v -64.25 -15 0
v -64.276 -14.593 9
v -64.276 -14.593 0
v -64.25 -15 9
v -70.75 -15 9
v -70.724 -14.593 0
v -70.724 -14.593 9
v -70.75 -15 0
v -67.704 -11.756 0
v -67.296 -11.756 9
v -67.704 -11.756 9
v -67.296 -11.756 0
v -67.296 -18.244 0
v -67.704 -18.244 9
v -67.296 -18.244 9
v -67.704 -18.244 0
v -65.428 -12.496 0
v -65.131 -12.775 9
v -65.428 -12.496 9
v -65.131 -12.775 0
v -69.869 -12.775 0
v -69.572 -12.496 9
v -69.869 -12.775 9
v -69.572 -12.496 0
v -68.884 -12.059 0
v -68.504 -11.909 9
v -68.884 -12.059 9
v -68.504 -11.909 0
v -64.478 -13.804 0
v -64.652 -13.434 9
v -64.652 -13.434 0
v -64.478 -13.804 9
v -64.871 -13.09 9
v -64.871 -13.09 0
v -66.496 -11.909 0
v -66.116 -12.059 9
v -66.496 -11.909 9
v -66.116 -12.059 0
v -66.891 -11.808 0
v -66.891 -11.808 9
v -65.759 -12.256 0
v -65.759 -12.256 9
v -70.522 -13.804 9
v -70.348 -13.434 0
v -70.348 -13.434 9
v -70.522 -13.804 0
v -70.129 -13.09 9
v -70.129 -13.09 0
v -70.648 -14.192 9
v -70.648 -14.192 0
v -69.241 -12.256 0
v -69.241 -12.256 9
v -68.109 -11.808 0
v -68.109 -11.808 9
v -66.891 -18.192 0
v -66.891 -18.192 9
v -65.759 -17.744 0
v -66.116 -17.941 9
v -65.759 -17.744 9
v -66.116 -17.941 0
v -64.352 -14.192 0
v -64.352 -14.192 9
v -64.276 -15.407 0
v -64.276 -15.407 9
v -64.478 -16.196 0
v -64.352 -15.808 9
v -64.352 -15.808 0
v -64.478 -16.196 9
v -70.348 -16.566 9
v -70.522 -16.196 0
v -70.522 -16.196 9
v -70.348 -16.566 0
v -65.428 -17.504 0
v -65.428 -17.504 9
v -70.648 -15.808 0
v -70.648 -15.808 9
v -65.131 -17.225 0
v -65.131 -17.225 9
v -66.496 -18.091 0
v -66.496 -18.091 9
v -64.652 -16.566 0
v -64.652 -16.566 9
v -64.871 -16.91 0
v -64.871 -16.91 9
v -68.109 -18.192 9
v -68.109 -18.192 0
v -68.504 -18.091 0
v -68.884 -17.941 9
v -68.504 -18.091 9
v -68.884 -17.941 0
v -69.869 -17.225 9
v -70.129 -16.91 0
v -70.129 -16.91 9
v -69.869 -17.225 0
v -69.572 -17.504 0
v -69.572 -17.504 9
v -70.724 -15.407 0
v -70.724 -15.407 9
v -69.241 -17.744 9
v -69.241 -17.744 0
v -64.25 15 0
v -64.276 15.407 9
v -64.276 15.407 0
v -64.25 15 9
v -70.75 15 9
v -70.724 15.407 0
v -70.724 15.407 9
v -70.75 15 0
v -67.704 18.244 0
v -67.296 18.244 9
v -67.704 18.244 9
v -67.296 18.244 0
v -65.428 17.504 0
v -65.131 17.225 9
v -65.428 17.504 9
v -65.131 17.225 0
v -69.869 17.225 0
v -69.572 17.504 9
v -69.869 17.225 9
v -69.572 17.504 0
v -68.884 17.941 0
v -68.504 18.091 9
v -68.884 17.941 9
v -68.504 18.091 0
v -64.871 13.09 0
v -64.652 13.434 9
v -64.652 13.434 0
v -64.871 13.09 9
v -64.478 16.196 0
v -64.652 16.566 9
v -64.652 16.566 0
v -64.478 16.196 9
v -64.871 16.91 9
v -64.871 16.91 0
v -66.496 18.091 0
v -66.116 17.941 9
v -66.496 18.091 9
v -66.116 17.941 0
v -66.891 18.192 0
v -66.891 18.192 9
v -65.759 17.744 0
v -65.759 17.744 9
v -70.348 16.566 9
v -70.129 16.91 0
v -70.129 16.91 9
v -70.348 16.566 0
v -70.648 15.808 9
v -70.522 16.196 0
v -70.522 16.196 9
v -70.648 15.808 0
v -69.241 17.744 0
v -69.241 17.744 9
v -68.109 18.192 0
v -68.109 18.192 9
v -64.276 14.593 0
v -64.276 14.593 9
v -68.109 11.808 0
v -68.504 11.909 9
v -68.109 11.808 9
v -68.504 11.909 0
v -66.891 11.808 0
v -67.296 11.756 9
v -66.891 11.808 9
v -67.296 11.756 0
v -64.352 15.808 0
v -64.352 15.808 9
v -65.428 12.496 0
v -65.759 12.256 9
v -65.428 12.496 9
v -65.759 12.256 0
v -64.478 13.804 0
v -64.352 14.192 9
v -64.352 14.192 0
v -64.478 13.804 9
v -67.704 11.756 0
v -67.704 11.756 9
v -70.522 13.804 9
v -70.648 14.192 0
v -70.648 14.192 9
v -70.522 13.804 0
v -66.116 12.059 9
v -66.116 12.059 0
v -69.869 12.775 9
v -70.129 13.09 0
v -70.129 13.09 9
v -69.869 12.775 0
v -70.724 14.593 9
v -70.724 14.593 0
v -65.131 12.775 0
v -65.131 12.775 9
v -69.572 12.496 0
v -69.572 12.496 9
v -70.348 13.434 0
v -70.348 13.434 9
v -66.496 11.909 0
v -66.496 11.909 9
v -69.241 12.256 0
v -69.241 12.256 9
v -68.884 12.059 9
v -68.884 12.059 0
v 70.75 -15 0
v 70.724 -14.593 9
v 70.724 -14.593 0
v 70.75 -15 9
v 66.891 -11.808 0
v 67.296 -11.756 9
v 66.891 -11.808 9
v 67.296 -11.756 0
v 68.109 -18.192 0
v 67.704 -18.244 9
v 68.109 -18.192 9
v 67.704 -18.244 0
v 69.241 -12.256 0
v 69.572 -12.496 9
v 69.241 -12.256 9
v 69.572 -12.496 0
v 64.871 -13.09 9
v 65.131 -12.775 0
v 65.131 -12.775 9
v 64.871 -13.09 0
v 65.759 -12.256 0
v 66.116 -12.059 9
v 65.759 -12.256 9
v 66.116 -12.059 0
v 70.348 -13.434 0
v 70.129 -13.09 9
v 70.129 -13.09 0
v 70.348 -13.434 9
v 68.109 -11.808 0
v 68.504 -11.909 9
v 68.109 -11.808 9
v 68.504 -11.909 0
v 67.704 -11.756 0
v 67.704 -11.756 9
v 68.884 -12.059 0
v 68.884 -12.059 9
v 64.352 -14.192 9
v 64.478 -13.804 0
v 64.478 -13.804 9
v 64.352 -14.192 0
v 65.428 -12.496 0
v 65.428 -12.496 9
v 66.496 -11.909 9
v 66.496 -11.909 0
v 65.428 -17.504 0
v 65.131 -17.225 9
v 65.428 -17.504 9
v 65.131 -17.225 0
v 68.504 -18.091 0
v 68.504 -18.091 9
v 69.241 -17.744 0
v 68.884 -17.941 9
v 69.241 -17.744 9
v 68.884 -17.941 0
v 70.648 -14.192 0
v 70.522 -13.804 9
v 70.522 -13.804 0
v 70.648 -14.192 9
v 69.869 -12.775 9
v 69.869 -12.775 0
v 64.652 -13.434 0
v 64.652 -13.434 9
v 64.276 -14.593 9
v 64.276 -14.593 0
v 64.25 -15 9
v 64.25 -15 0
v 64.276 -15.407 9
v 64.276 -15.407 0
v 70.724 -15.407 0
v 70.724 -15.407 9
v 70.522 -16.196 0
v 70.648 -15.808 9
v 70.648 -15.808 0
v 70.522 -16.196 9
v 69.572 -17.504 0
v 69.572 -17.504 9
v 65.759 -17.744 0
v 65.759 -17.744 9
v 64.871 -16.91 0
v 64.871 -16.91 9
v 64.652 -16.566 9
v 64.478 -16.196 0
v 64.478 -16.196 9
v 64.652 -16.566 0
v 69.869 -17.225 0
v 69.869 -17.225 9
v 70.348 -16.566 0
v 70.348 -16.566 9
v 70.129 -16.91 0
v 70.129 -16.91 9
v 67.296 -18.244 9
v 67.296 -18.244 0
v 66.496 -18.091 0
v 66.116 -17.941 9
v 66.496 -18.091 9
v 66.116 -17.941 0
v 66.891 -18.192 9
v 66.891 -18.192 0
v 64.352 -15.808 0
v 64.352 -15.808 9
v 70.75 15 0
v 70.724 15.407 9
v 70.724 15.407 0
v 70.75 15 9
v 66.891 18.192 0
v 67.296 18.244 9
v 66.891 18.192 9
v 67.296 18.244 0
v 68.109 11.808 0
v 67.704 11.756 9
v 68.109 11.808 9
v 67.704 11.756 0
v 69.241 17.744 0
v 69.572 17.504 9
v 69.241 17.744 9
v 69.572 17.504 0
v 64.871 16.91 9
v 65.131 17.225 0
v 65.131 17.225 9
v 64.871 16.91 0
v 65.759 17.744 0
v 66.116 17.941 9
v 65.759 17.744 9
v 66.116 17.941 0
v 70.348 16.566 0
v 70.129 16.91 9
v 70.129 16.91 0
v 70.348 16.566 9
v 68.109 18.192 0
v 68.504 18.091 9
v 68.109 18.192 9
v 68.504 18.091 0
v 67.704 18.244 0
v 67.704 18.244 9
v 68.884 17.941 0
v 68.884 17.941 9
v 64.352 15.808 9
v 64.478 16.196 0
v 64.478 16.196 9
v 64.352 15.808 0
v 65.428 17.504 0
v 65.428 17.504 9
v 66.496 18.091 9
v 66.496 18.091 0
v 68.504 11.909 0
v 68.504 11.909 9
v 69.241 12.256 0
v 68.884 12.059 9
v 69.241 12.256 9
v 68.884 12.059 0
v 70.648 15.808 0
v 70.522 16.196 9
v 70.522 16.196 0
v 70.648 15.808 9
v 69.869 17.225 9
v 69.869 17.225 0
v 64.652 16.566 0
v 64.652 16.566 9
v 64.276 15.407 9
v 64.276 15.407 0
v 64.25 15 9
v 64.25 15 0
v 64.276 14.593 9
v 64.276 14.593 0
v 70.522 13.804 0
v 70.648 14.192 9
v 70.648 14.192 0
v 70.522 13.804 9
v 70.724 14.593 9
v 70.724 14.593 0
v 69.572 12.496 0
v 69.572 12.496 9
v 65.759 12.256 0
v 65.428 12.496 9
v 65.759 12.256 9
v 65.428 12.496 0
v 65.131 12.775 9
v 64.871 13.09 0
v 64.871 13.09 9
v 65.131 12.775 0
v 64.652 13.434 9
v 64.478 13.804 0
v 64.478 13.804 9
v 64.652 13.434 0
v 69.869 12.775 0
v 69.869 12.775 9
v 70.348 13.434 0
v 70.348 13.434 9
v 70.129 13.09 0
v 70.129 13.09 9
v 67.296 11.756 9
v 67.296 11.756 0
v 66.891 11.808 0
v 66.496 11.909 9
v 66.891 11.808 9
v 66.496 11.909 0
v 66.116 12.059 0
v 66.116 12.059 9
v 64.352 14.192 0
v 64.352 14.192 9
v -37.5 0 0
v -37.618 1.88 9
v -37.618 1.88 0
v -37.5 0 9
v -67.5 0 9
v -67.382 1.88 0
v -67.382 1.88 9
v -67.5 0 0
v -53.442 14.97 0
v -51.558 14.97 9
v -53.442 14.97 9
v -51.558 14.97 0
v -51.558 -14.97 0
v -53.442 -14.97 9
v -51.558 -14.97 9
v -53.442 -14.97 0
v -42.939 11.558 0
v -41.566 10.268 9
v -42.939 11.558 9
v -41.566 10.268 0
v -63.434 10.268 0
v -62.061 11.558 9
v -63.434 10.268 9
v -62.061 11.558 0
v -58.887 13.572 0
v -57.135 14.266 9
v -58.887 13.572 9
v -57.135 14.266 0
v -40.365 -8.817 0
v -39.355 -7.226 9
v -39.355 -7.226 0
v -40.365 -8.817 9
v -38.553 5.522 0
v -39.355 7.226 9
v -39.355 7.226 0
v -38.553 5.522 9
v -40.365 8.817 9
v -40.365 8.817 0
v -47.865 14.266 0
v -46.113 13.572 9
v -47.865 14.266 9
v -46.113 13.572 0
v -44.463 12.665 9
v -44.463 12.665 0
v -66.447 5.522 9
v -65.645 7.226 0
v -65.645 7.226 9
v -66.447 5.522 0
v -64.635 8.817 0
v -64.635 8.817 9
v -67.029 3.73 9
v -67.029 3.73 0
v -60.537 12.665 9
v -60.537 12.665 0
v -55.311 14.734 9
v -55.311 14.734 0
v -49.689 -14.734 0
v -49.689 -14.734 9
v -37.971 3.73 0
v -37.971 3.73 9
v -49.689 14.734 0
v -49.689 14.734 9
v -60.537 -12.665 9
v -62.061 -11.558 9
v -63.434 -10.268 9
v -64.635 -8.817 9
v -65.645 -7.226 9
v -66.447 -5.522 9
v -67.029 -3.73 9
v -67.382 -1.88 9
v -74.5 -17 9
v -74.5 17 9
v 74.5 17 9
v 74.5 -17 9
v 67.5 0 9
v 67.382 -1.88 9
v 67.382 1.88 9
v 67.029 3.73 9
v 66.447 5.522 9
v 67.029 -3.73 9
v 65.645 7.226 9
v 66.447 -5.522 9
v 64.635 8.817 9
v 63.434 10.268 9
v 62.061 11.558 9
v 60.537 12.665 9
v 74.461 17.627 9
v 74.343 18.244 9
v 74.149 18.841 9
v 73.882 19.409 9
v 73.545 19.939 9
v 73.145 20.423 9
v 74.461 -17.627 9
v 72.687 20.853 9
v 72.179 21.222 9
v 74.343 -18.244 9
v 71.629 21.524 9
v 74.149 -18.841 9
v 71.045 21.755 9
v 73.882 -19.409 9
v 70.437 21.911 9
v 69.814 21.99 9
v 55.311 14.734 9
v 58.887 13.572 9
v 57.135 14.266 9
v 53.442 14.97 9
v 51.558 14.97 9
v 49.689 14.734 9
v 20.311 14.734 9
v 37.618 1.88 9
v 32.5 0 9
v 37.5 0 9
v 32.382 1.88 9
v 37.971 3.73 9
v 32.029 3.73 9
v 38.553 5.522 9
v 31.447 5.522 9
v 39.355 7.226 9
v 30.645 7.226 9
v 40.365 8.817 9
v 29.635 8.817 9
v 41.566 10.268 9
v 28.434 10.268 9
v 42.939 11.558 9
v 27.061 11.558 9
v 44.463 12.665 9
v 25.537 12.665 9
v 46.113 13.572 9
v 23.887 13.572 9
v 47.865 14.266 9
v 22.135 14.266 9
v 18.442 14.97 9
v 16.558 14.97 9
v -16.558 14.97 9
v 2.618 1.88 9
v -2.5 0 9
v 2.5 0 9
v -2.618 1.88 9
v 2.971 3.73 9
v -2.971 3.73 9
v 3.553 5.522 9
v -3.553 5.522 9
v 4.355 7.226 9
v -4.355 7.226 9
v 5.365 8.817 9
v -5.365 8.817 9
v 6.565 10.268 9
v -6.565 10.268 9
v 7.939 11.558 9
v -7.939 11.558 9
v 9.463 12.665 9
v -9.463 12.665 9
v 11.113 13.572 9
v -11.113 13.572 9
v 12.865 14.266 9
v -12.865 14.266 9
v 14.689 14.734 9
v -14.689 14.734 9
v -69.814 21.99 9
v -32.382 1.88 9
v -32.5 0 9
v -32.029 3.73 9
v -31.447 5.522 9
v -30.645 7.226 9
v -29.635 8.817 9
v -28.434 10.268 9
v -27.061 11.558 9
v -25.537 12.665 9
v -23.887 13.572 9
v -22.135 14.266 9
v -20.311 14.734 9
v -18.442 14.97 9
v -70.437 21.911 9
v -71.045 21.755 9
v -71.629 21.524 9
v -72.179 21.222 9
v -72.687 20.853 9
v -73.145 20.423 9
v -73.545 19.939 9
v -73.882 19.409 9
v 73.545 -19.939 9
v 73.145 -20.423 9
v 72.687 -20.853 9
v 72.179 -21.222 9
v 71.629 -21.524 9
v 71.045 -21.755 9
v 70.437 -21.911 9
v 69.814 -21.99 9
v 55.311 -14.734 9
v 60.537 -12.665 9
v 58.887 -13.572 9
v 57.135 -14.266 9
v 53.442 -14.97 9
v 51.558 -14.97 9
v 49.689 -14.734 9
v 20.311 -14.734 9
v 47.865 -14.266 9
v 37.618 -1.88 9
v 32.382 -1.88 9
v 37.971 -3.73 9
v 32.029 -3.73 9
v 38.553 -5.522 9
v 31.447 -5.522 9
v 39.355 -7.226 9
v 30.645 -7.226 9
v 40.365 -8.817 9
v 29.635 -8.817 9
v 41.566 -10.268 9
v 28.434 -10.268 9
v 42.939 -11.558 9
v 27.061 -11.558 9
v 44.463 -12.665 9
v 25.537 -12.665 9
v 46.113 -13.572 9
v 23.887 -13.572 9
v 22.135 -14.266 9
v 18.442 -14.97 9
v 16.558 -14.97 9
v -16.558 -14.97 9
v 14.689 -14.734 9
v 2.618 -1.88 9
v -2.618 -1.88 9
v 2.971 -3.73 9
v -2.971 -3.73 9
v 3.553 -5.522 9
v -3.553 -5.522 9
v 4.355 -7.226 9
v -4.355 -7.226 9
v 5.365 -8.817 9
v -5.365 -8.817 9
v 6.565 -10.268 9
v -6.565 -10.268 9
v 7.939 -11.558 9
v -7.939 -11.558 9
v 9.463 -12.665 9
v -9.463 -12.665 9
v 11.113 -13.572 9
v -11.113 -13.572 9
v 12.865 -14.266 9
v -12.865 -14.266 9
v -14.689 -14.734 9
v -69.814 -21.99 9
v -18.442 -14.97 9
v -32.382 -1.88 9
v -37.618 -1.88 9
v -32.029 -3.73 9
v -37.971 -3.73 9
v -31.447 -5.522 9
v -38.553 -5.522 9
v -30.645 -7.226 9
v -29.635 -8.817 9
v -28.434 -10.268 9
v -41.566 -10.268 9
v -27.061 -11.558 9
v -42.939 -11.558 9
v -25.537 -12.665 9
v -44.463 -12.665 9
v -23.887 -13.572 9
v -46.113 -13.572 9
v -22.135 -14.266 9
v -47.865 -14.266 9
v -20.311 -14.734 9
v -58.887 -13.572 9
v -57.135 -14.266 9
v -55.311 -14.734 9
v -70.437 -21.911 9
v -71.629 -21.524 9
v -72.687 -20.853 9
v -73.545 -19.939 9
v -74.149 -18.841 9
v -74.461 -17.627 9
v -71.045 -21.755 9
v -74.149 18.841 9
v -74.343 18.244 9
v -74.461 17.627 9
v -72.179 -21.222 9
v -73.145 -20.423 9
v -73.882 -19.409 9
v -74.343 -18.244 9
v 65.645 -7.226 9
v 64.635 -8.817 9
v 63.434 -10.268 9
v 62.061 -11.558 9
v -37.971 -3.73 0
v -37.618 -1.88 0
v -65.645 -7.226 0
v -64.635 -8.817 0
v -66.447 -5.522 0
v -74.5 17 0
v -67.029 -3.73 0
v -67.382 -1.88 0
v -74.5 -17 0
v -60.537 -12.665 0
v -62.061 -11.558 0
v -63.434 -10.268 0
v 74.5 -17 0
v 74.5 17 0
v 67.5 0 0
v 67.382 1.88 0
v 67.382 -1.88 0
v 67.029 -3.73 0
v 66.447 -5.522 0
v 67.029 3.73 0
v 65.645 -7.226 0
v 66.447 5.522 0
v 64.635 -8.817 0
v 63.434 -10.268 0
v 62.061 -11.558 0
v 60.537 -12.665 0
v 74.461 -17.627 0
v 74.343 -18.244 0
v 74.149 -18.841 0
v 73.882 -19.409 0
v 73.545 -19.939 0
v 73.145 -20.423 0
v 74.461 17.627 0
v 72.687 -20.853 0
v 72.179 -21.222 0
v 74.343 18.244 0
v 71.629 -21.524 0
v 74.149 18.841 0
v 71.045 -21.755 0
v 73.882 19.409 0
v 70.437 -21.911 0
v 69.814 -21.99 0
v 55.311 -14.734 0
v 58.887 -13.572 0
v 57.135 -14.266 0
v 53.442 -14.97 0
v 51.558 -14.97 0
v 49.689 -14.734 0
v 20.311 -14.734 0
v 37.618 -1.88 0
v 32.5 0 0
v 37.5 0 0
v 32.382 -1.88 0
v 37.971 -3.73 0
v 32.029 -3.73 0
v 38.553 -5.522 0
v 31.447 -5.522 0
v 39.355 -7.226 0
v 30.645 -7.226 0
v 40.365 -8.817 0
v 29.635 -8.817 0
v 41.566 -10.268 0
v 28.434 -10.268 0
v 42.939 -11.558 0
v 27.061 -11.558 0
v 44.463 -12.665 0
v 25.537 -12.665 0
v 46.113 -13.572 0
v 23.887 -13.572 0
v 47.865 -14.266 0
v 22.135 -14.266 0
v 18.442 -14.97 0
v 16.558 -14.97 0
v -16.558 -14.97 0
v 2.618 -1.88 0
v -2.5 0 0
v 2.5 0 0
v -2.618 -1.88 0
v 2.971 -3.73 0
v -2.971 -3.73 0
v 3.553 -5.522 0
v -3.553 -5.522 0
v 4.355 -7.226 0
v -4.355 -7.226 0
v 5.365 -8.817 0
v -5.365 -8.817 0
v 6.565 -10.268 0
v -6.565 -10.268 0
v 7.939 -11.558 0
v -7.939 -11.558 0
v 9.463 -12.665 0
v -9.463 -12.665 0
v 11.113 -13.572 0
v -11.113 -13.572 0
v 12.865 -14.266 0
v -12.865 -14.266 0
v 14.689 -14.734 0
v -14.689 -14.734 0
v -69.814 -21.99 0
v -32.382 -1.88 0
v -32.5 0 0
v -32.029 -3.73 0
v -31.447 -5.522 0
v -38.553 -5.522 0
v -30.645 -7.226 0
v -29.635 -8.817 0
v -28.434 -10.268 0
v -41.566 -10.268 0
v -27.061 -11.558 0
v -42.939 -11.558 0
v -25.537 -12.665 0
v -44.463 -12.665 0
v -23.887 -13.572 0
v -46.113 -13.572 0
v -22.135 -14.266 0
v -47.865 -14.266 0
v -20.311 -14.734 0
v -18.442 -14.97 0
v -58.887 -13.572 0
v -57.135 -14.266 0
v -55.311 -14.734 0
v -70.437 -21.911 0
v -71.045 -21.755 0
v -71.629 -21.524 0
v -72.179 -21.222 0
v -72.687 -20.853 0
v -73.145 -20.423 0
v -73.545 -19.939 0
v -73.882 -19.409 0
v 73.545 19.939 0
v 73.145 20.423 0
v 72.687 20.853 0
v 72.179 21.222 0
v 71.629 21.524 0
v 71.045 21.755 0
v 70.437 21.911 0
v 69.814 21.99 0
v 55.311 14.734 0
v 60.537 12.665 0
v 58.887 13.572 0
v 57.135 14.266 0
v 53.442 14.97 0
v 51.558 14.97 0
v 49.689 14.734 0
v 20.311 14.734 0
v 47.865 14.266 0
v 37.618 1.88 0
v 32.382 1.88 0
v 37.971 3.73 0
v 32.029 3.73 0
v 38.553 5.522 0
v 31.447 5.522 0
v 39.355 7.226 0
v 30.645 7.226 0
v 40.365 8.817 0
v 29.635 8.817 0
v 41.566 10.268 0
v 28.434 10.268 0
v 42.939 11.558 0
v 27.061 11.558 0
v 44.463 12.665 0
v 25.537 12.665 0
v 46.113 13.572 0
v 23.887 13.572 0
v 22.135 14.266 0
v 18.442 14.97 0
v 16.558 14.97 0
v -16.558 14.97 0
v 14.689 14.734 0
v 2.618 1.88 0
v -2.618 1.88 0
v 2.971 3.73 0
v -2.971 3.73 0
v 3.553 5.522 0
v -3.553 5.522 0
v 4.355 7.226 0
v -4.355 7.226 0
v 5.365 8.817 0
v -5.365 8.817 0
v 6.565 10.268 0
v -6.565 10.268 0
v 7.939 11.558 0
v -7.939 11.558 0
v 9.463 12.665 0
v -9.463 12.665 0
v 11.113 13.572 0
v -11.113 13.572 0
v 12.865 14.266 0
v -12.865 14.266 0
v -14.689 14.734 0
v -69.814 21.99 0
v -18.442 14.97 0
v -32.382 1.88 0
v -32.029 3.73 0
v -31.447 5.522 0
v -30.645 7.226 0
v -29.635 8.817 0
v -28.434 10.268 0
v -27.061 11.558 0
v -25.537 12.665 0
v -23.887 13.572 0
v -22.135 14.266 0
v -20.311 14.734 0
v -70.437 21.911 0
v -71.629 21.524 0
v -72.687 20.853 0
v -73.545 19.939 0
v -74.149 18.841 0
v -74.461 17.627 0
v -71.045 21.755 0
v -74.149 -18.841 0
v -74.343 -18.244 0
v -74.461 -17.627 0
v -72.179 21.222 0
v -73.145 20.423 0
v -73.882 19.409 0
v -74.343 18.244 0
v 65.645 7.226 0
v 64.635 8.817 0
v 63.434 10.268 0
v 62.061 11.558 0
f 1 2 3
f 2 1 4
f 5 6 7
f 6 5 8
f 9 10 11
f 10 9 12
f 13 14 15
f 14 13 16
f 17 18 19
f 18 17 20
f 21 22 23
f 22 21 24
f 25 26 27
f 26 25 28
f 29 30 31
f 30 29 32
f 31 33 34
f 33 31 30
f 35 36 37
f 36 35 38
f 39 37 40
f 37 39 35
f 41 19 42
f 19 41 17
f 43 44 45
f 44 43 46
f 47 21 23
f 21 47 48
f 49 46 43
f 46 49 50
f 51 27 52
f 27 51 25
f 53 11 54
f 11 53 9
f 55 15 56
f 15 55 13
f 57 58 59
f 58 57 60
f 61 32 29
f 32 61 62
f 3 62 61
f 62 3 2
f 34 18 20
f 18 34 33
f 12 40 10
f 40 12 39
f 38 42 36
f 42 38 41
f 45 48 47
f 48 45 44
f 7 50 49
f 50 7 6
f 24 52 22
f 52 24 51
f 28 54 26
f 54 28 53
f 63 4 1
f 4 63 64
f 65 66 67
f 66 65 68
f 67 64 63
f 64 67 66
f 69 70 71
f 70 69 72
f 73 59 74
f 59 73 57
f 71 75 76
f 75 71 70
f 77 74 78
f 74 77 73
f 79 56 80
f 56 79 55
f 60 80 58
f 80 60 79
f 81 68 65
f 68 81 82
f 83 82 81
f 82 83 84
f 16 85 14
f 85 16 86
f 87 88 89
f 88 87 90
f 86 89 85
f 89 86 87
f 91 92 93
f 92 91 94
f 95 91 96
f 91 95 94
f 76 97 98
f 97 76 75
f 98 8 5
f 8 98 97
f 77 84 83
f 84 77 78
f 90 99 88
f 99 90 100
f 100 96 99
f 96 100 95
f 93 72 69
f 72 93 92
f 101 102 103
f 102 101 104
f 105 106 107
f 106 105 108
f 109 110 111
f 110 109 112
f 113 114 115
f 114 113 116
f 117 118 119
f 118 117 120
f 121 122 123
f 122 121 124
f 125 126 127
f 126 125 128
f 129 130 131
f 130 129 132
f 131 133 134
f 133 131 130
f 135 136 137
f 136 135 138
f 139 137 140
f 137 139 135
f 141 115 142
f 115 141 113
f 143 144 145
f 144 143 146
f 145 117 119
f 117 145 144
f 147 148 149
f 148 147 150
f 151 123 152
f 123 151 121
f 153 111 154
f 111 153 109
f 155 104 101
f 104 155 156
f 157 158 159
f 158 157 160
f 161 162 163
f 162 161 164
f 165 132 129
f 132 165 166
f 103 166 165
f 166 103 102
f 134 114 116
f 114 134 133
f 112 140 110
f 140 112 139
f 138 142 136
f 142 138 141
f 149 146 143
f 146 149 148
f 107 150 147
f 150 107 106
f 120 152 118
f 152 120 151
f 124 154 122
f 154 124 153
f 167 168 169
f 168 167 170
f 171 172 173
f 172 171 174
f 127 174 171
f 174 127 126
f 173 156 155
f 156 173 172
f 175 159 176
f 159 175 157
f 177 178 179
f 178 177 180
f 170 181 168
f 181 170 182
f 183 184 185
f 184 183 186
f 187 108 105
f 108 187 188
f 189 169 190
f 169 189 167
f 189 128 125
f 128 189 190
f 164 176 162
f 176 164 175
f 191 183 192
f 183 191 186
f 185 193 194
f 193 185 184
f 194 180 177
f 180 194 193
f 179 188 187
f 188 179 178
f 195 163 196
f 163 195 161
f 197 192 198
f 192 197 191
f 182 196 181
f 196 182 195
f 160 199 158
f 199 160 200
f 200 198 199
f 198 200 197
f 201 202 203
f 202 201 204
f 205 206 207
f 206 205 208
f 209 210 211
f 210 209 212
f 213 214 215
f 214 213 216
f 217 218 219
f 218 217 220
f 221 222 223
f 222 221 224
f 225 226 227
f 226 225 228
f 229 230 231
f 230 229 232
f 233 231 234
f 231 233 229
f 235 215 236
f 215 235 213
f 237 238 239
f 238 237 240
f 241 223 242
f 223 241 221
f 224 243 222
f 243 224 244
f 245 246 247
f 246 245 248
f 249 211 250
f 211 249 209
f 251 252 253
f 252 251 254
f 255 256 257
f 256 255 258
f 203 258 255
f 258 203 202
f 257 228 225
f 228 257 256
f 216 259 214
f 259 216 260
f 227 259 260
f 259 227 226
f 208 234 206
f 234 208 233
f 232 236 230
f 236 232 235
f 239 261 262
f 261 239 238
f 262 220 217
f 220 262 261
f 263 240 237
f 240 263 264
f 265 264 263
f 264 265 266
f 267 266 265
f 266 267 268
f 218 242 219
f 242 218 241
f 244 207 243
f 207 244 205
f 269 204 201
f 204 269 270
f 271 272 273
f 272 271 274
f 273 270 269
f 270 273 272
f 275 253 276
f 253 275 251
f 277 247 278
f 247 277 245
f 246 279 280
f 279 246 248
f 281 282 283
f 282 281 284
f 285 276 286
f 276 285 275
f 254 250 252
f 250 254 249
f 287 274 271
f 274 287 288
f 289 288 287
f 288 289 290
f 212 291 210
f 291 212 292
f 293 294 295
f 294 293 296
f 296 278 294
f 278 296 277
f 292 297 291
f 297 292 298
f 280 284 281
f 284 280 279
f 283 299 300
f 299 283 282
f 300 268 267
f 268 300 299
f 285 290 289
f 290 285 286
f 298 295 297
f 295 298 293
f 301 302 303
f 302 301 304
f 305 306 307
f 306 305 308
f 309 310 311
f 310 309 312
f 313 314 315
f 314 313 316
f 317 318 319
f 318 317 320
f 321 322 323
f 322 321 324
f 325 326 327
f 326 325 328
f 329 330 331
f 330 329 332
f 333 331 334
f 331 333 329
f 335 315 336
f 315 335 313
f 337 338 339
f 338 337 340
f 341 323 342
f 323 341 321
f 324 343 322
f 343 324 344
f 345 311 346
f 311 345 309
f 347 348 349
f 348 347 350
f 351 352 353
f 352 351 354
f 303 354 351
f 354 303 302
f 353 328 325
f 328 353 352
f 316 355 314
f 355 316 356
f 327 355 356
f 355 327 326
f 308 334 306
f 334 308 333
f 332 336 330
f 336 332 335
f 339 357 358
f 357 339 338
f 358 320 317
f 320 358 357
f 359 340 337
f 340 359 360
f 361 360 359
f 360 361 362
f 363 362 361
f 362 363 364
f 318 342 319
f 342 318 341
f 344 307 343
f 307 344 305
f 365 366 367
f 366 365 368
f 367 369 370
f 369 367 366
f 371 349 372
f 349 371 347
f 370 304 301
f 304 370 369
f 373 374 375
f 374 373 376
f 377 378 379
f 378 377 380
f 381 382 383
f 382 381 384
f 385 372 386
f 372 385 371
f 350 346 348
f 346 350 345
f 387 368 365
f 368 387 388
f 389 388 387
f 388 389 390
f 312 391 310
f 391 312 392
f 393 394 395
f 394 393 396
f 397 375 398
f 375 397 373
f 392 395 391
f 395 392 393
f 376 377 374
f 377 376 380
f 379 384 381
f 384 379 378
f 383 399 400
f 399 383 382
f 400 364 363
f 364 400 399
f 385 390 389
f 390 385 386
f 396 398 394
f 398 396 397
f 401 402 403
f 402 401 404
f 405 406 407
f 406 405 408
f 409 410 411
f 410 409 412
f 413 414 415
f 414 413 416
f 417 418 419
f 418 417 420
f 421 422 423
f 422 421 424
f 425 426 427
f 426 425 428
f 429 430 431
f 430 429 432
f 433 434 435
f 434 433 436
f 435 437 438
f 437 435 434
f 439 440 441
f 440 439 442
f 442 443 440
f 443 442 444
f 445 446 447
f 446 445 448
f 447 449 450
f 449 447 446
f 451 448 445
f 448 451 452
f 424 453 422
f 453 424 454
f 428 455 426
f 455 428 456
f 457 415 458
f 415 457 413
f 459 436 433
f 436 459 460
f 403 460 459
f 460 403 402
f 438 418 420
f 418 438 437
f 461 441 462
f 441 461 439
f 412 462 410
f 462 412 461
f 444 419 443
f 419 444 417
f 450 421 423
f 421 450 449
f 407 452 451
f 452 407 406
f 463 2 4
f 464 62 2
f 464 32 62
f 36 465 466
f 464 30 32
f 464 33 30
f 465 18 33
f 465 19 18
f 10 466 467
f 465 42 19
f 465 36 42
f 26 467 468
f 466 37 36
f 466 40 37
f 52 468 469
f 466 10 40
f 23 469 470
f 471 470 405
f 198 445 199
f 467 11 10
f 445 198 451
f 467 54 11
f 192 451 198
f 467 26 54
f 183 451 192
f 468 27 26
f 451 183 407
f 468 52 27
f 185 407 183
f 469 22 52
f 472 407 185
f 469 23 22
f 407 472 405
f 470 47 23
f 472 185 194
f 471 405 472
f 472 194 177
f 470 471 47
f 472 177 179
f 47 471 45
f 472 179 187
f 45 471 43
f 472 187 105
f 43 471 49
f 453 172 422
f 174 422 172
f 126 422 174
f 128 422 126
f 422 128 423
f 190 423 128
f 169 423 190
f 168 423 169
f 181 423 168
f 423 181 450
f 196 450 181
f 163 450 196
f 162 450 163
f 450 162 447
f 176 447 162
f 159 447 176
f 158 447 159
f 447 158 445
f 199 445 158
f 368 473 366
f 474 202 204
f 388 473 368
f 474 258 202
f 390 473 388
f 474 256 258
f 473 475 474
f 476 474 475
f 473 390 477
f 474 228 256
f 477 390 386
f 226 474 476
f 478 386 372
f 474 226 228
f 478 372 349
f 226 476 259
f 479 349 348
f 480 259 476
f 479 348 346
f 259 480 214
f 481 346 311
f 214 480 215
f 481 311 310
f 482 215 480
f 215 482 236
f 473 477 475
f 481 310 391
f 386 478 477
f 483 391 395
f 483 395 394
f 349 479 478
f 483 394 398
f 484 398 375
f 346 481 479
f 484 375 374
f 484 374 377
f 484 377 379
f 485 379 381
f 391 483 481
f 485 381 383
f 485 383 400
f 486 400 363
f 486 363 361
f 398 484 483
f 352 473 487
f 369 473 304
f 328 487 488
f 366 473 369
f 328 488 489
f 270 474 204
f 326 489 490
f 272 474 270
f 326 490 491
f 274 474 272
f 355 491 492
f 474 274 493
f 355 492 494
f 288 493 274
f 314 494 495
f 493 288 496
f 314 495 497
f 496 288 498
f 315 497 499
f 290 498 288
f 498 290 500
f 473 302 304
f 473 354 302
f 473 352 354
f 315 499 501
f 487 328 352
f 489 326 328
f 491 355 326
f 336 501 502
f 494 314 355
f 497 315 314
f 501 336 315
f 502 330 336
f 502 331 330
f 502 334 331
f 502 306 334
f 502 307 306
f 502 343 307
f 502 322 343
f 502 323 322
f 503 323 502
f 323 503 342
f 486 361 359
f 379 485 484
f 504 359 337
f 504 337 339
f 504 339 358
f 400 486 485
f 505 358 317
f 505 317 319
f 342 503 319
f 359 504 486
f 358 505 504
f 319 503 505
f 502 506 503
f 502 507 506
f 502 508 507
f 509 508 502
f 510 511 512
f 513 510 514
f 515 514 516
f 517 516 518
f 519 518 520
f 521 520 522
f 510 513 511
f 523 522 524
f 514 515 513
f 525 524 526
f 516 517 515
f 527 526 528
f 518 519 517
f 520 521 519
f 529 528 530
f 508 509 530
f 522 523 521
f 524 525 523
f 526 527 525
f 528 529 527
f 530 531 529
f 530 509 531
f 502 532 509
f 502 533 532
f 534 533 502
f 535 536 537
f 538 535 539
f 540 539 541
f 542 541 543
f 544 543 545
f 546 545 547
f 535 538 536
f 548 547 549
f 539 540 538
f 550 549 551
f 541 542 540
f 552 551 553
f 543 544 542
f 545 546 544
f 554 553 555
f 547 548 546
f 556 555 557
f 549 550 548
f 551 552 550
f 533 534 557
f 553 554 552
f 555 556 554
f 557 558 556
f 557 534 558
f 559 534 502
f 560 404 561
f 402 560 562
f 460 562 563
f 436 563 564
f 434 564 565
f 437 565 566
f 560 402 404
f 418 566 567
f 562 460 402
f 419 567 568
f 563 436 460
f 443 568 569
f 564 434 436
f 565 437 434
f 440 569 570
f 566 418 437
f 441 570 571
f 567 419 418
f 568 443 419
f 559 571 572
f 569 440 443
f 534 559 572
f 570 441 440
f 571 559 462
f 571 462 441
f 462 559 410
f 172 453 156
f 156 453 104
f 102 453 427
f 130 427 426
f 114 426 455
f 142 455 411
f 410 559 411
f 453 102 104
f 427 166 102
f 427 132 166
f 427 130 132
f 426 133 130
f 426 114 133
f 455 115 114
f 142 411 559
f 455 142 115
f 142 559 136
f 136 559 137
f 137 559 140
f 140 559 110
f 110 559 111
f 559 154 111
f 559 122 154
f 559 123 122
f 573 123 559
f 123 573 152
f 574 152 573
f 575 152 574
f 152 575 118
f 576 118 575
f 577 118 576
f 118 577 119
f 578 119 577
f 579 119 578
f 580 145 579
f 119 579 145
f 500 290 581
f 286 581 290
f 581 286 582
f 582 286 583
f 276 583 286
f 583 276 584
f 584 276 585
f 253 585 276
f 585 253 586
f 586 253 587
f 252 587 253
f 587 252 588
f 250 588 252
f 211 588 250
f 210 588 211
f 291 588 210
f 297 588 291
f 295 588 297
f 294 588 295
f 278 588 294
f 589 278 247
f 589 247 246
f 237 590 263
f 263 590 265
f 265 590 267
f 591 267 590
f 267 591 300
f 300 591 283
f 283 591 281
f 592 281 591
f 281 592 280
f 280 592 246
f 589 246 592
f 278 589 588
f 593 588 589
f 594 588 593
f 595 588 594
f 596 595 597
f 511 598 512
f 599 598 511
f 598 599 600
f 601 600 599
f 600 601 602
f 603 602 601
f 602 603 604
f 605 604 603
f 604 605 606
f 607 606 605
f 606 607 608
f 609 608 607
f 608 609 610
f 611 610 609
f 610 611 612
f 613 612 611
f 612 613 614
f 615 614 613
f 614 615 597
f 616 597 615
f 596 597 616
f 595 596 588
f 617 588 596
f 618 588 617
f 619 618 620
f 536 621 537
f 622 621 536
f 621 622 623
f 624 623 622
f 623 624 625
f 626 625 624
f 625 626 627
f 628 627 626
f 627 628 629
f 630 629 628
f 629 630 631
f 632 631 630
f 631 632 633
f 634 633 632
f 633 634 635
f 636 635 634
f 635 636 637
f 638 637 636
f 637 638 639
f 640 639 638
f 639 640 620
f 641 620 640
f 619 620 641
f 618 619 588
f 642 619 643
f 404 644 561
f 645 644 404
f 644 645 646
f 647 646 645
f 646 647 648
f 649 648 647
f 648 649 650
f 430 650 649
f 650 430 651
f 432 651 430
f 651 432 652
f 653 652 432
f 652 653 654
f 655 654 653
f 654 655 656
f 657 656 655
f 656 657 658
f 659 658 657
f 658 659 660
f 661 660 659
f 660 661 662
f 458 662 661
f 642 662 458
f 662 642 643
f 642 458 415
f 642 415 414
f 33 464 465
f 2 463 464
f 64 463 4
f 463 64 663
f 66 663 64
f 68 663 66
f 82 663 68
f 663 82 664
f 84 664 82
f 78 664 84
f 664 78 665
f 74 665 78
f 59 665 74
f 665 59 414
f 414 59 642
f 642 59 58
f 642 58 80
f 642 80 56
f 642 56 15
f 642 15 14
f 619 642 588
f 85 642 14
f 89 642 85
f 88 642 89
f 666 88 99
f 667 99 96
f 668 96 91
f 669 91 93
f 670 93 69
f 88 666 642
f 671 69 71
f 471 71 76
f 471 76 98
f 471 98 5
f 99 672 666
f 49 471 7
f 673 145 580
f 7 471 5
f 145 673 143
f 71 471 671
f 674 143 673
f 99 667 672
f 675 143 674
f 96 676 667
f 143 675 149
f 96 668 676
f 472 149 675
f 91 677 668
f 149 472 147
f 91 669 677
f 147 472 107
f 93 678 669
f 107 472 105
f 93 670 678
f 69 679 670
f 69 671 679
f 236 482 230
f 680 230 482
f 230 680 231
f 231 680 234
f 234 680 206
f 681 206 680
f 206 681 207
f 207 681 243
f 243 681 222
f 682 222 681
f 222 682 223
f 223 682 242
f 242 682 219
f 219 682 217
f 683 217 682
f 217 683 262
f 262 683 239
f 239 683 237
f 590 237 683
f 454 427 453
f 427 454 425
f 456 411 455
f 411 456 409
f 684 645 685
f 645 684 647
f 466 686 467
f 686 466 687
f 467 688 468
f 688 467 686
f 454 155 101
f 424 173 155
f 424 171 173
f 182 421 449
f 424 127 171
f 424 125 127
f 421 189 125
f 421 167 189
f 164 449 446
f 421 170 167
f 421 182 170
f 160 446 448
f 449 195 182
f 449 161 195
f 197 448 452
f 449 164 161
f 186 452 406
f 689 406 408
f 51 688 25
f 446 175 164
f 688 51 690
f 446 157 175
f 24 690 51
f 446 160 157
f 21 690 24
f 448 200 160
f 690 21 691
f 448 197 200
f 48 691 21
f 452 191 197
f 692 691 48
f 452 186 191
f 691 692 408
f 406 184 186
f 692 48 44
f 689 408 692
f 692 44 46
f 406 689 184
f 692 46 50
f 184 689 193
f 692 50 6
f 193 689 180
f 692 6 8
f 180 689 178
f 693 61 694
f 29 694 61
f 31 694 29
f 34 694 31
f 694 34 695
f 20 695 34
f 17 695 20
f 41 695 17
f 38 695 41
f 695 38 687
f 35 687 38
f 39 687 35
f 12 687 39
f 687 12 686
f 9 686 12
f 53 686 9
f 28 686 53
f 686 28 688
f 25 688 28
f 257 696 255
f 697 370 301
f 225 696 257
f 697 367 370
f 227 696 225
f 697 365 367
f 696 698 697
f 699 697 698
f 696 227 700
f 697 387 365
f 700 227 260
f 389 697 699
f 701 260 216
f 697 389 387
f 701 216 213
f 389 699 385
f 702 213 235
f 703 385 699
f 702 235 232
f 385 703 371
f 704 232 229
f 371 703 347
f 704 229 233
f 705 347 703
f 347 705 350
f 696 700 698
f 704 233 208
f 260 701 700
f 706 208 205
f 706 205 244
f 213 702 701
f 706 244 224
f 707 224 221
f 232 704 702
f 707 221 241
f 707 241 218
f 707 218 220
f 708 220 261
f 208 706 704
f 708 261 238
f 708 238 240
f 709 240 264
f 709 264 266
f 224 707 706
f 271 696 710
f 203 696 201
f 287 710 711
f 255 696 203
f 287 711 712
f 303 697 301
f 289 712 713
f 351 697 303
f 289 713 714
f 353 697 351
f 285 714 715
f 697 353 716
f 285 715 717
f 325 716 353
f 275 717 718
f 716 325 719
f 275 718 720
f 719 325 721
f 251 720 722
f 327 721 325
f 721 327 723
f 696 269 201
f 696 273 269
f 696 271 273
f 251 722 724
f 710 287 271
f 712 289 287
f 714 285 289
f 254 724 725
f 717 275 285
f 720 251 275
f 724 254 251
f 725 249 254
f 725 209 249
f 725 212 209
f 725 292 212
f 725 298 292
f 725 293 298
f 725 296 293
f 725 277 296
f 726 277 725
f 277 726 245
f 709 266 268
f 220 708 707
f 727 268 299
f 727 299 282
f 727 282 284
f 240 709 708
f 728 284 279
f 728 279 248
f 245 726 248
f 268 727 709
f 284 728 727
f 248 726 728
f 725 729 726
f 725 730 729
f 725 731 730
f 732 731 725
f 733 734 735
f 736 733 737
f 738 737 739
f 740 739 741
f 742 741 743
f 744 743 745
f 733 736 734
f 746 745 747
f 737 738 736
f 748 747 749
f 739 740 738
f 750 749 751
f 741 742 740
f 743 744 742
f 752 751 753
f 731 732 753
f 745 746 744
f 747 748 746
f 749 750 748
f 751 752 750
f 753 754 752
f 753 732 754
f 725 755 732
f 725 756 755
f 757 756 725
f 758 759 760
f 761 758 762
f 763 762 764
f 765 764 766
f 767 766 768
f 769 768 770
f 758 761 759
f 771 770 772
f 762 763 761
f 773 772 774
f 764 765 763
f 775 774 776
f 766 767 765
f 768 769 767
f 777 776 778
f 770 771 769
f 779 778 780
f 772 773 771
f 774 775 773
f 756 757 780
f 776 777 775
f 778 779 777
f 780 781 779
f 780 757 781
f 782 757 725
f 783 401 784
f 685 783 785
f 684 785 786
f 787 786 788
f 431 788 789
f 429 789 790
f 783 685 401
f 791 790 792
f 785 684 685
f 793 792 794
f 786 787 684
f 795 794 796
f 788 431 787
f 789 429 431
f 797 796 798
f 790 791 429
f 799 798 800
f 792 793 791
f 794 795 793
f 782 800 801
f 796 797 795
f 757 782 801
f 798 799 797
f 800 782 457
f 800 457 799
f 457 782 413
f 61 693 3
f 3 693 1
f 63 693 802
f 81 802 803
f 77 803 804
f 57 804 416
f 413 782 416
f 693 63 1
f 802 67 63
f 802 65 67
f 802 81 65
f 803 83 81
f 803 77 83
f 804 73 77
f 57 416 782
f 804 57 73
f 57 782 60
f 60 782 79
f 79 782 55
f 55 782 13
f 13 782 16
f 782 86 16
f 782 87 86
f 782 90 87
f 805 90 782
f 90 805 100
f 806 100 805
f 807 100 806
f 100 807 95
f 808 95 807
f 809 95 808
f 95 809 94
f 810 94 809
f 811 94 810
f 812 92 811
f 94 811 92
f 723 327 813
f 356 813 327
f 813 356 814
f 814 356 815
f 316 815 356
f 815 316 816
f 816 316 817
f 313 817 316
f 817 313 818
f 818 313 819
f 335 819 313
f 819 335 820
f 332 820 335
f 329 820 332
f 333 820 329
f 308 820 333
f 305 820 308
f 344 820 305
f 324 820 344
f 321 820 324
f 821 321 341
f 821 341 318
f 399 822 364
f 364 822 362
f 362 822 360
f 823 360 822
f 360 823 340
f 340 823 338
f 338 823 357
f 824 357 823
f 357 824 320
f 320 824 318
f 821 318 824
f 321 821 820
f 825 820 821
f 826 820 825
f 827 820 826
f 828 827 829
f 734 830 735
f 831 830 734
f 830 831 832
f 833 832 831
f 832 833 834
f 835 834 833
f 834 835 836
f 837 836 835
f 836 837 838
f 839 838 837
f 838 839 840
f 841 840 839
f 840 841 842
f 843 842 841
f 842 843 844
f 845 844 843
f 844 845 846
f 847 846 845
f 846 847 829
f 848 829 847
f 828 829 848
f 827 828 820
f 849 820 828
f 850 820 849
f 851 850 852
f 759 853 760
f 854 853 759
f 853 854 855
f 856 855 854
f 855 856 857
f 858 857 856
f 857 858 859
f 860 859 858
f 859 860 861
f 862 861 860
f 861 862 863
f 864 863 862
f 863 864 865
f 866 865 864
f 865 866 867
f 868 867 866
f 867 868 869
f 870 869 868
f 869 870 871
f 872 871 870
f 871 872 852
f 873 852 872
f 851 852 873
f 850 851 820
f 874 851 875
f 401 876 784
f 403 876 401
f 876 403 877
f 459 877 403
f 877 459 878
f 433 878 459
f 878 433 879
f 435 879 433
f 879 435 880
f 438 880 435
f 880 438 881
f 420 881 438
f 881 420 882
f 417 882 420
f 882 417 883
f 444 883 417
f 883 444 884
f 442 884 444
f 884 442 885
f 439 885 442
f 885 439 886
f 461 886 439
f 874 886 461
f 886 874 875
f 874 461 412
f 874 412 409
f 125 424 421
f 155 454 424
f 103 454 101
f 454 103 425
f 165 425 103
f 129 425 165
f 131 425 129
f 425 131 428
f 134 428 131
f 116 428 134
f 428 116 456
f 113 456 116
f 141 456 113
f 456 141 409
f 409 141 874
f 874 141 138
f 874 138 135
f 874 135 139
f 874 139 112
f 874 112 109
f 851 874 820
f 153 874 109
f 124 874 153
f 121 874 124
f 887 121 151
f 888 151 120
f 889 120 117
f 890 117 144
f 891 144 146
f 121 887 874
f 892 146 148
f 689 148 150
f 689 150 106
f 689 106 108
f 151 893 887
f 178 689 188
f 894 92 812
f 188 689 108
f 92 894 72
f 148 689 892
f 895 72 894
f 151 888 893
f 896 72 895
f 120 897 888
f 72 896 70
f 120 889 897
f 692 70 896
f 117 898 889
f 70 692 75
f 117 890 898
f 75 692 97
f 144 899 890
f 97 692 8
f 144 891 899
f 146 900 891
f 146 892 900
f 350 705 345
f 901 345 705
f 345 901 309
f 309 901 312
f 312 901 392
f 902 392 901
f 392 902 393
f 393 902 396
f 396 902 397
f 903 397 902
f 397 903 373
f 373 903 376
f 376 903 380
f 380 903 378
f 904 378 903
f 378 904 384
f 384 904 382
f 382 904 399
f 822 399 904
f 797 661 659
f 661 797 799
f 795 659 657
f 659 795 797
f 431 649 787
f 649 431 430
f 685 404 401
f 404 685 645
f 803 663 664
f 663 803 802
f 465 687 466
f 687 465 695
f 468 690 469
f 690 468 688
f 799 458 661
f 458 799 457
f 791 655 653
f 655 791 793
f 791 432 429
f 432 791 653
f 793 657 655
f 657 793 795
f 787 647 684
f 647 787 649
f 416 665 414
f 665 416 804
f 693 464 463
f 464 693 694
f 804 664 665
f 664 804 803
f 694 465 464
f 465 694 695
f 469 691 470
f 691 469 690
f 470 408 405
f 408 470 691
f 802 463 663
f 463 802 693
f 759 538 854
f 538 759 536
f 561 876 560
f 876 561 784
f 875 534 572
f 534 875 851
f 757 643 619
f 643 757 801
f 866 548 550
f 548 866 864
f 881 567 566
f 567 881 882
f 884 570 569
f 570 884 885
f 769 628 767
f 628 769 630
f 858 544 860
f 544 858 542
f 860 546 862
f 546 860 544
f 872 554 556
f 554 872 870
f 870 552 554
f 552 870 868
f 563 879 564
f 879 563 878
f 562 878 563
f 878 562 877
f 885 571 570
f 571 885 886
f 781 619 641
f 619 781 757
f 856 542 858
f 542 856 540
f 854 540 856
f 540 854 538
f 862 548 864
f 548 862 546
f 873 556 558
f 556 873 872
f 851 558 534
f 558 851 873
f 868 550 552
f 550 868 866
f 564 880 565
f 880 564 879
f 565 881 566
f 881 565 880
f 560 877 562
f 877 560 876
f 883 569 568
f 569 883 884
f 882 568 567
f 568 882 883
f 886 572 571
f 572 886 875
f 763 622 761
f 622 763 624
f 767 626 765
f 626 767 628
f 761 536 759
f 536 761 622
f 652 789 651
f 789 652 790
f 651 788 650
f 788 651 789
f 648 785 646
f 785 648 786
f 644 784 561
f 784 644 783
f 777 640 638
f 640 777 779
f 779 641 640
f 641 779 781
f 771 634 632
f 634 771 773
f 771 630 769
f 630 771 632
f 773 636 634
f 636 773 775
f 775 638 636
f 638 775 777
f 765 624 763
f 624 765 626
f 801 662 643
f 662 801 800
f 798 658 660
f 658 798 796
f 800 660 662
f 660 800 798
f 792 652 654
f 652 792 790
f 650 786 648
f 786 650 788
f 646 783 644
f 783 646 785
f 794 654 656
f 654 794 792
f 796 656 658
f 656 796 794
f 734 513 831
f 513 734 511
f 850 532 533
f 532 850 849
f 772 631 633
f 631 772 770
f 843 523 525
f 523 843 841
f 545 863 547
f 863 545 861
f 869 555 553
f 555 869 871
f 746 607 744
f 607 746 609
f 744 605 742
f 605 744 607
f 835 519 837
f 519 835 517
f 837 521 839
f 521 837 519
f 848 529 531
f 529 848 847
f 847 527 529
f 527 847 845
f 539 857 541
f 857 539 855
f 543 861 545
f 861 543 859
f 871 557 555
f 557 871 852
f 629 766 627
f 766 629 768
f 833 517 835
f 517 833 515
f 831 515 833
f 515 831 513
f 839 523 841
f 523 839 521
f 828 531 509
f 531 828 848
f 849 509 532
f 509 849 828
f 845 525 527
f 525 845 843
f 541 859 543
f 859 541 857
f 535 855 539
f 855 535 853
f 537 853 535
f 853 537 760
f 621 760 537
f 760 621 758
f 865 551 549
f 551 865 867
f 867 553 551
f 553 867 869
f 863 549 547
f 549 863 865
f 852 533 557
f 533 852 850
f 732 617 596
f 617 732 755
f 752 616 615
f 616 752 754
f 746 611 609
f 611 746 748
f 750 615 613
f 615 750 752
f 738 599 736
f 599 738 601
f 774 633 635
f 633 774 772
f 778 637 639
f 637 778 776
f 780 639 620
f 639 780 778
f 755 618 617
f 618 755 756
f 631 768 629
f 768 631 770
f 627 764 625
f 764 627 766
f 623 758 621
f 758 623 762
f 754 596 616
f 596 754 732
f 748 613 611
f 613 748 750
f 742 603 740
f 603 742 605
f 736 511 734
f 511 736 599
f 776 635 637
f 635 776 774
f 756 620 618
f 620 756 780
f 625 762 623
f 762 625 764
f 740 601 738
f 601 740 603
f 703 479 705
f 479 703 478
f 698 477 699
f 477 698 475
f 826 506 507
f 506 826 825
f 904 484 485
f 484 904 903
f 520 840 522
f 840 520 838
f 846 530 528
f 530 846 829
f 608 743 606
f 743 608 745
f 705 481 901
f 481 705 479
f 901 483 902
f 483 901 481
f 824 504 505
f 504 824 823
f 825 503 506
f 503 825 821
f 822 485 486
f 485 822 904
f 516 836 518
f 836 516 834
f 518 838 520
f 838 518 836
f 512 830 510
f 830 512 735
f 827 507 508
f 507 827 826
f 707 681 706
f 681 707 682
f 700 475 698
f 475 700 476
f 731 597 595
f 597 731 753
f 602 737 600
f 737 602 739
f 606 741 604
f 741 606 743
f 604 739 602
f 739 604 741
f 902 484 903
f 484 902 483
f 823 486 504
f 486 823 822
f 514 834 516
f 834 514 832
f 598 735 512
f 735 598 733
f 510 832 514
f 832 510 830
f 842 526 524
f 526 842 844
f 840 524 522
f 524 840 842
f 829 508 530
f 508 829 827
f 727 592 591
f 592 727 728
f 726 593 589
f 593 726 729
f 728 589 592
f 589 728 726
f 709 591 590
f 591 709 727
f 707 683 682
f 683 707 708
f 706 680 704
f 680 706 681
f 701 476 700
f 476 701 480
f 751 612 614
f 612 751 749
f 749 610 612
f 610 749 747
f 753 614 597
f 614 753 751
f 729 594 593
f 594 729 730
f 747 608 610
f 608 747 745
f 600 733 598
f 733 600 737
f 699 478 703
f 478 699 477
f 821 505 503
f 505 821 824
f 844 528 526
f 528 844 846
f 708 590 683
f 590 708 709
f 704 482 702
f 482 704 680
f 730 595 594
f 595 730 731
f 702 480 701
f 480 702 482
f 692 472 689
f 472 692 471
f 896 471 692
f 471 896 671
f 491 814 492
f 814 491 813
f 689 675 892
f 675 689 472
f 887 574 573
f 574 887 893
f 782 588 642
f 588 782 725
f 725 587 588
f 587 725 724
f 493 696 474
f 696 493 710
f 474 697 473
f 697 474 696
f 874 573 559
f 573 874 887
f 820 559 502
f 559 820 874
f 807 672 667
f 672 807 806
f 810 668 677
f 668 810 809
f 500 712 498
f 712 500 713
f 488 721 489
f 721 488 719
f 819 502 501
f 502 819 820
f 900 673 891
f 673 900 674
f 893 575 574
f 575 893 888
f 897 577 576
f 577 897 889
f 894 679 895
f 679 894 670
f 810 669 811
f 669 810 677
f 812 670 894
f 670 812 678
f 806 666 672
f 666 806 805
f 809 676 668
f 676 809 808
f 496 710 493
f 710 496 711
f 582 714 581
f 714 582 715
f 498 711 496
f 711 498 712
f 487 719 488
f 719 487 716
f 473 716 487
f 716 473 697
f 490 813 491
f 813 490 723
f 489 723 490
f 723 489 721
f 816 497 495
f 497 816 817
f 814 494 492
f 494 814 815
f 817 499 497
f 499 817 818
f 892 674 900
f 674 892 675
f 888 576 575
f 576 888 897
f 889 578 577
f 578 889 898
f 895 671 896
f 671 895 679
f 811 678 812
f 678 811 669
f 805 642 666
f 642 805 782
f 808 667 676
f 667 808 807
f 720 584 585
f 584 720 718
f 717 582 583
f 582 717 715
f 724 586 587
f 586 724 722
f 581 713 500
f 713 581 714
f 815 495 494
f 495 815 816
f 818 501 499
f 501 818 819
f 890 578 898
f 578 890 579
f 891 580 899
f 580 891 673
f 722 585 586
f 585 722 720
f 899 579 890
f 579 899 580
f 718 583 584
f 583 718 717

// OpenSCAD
$fn = 50;


difference() {
	union() {
		hull() {
			translate(v = [-69.5000000000, 17.0000000000, 0]) {
				cylinder(h = 9, r = 5);
			}
			translate(v = [69.5000000000, 17.0000000000, 0]) {
				cylinder(h = 9, r = 5);
			}
			translate(v = [-69.5000000000, -17.0000000000, 0]) {
				cylinder(h = 9, r = 5);
			}
			translate(v = [69.5000000000, -17.0000000000, 0]) {
				cylinder(h = 9, r = 5);
			}
		}
	}
	union() {
		#translate(v = [-67.5000000000, -15.0000000000, -100.0000000000]) {
			cylinder(h = 200, r = 3.2500000000);
		}
		#translate(v = [-67.5000000000, 15.0000000000, -100.0000000000]) {
			cylinder(h = 200, r = 3.2500000000);
		}
		#translate(v = [67.5000000000, -15.0000000000, -100.0000000000]) {
			cylinder(h = 200, r = 3.2500000000);
		}
		#translate(v = [67.5000000000, 15.0000000000, -100.0000000000]) {
			cylinder(h = 200, r = 3.2500000000);
		}
		#translate(v = [-52.5000000000, 0, 0]) {
			cylinder(h = 9, r = 15.0000000000);
		}
		#translate(v = [-17.5000000000, 0, 0]) {
			cylinder(h = 9, r = 15.0000000000);
		}
		#translate(v = [17.5000000000, 0, 0]) {
			cylinder(h = 9, r = 15.0000000000);
		}
		#translate(v = [52.5000000000, 0, 0]) {
			cylinder(h = 9, r = 15.0000000000);
		}
	}
}
